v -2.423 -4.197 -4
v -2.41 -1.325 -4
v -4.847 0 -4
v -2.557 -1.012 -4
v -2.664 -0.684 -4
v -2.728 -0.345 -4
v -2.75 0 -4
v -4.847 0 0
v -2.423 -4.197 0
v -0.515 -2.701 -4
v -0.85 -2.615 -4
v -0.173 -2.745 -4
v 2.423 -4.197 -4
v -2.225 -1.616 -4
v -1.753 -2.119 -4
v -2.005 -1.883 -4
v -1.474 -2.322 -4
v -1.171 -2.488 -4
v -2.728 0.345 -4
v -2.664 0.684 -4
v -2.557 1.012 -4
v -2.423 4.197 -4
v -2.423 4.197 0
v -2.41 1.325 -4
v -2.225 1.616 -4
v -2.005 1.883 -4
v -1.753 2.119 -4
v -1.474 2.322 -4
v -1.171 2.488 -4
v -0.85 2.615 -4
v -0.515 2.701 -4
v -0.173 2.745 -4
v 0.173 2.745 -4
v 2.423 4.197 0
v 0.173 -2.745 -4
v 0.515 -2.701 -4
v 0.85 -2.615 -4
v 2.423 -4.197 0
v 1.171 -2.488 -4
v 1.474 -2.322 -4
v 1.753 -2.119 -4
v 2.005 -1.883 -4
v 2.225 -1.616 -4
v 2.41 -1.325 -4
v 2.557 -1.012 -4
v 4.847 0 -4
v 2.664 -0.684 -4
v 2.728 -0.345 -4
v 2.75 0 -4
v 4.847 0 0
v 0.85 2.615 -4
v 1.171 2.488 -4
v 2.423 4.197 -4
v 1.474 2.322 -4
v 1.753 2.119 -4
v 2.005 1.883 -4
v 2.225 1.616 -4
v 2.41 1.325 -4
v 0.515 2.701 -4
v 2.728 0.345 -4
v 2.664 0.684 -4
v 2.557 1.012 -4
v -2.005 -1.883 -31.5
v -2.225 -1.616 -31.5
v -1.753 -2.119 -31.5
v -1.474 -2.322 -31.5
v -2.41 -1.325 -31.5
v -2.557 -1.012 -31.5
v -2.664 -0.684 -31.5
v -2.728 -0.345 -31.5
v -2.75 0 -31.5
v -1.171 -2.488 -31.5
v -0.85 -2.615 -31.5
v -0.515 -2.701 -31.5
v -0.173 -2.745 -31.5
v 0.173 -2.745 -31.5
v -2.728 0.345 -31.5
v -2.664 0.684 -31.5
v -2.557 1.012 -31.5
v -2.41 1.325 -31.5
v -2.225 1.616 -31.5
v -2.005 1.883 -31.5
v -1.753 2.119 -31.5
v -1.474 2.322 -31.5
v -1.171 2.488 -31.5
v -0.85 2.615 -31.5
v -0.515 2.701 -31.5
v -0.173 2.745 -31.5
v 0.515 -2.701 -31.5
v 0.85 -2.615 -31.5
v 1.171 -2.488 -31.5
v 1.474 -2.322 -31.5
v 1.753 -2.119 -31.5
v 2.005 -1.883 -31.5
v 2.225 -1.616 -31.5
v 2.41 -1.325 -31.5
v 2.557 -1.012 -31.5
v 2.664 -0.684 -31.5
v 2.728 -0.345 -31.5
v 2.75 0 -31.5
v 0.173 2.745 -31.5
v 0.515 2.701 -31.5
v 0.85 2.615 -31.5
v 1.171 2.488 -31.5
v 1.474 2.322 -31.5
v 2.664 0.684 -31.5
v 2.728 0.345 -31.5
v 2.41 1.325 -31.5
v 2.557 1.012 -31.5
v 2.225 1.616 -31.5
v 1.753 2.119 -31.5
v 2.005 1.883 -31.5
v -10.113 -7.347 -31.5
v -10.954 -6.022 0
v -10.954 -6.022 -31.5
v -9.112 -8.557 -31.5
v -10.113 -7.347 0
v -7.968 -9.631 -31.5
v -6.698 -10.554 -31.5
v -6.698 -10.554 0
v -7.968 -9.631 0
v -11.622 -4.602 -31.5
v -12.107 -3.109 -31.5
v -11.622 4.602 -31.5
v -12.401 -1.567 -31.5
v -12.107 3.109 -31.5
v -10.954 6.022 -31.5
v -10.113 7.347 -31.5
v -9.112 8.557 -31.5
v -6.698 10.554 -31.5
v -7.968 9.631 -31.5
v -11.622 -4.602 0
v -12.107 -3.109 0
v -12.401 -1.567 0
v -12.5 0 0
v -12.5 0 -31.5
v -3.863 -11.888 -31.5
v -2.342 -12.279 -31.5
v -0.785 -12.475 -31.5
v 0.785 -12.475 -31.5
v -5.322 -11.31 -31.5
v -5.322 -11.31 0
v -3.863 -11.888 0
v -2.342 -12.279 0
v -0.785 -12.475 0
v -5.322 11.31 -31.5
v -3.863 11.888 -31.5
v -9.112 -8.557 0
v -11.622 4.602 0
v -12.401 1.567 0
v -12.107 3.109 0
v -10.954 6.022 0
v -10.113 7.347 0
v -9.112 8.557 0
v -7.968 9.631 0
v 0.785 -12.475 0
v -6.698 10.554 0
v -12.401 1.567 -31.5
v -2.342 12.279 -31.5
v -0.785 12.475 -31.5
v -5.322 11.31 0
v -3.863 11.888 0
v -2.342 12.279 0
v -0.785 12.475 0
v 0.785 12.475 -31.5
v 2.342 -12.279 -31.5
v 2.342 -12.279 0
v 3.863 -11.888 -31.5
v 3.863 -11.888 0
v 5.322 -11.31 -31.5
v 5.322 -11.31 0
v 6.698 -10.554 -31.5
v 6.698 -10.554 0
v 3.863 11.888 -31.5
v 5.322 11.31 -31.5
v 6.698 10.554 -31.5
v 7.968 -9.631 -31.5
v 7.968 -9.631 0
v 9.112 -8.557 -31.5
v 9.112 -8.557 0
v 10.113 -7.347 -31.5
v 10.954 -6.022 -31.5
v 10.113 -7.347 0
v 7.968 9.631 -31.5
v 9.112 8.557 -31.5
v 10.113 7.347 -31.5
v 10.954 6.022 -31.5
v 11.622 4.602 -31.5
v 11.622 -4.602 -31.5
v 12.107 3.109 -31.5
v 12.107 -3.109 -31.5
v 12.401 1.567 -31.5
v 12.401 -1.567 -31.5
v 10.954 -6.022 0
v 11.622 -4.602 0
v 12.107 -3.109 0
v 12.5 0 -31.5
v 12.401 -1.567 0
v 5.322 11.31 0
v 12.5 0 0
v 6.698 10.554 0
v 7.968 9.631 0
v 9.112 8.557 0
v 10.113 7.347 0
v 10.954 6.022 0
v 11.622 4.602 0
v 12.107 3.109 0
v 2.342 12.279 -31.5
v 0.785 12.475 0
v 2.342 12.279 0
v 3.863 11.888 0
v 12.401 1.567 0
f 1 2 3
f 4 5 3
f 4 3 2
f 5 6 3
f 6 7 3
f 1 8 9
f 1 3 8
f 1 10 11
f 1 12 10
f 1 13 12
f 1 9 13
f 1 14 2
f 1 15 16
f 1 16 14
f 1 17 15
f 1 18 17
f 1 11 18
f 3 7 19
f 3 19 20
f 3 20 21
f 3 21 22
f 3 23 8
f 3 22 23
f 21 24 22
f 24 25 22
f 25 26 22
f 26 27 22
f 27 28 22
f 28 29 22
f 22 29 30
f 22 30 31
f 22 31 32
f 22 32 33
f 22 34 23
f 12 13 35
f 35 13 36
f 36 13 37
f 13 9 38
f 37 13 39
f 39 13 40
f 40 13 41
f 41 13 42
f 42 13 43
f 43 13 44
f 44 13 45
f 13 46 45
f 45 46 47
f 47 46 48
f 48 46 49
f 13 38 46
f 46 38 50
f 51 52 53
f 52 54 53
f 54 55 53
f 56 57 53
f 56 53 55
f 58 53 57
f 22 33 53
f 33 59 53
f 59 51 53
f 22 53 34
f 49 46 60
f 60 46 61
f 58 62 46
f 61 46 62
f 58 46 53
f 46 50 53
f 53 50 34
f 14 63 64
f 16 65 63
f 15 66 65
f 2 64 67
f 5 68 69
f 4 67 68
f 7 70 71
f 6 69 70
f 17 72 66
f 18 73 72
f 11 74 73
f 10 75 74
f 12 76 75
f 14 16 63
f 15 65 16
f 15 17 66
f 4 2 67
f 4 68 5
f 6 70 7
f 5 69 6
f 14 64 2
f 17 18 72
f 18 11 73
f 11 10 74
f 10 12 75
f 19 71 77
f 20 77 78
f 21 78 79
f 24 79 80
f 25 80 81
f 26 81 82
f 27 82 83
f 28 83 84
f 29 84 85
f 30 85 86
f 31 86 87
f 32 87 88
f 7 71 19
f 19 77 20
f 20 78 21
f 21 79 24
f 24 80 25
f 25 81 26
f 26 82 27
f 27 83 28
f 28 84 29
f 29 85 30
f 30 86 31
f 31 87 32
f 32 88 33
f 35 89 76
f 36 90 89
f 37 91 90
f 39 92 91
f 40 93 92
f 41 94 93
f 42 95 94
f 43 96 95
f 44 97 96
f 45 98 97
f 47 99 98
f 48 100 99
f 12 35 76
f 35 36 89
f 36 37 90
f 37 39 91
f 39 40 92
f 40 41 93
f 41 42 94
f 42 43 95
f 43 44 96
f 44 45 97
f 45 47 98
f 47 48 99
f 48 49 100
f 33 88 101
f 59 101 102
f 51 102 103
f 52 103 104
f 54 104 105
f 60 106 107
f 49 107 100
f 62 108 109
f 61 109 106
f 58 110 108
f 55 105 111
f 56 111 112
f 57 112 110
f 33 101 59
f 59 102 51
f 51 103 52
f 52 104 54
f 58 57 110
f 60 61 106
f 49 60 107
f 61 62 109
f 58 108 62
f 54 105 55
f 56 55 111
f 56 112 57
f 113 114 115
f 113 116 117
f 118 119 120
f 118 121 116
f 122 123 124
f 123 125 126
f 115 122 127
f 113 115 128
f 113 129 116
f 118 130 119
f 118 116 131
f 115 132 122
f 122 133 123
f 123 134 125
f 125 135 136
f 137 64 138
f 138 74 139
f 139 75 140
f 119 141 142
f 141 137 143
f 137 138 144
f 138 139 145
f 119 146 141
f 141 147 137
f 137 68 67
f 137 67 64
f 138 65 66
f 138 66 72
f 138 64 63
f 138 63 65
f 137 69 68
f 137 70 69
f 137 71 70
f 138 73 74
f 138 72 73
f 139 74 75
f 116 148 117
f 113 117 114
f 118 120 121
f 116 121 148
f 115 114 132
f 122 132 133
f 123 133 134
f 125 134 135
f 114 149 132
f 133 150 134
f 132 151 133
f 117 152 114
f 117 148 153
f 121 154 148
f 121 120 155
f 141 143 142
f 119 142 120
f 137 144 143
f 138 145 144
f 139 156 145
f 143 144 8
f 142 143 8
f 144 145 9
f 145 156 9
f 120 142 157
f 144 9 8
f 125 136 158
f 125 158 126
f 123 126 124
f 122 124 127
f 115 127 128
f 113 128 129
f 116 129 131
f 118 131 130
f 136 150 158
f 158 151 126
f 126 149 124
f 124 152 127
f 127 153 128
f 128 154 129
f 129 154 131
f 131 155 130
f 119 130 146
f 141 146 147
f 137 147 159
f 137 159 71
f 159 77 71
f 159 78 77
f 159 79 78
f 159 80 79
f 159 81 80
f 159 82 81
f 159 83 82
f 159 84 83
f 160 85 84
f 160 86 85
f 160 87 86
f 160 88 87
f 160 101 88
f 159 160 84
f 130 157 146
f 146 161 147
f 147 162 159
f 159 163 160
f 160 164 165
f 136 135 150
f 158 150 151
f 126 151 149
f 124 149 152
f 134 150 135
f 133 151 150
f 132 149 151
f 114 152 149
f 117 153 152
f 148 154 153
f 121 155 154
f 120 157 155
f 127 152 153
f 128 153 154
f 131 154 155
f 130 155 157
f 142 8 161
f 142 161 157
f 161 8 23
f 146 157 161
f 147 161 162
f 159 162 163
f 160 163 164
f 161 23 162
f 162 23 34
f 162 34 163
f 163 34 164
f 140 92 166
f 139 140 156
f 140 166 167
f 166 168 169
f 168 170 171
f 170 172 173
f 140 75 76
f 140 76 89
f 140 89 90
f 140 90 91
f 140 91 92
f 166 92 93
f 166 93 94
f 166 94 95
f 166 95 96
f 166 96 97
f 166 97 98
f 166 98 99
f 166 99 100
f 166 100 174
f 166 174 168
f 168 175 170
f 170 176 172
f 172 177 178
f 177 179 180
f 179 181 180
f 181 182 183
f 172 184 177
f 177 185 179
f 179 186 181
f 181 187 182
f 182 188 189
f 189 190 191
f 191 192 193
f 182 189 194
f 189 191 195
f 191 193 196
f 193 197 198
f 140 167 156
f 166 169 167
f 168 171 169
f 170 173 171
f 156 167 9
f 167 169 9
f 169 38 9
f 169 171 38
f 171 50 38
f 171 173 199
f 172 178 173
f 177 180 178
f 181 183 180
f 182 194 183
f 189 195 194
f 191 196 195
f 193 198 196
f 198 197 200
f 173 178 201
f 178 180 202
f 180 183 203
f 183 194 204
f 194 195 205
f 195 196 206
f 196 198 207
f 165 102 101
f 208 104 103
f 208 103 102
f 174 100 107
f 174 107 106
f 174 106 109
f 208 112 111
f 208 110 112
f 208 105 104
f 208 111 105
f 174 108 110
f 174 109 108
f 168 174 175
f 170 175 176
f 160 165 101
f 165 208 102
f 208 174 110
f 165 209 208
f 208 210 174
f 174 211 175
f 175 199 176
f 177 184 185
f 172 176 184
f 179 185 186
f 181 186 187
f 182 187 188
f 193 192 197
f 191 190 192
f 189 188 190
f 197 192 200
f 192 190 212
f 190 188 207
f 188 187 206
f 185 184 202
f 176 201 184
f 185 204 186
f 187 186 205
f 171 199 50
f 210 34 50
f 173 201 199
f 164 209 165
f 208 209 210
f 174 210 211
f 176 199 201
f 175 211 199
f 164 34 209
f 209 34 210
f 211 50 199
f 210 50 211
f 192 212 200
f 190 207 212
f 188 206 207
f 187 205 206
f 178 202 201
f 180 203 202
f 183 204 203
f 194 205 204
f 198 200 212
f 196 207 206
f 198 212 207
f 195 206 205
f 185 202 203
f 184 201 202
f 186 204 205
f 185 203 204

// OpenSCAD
$fn = 50;


difference() {
	union() {
		translate(v = [0, 0, -31.5000000000]) {
			cylinder(h = 31.5000000000, r = 12.5000000000);
		}
	}
	union() {
		translate(v = [0, 0, 0]) {
			rotate(a = [0, 0, 0]) {
				difference() {
					union() {
						translate(v = [0, 0, -4]) {
							linear_extrude(height = 4) {
								polygon(points = [[4.8468000000, 0.0000000000], [2.4234000000, 4.1974519271], [-2.4234000000, 4.1974519271], [-4.8468000000, 0.0000000000], [-2.4234000000, -4.1974519271], [2.4234000000, -4.1974519271]]);
							}
						}
					}
					union();
				}
			}
		}
		#translate(v = [0, 0, -100.0000000000]) {
			cylinder(h = 200, r = 2.7500000000);
		}
	}
}
